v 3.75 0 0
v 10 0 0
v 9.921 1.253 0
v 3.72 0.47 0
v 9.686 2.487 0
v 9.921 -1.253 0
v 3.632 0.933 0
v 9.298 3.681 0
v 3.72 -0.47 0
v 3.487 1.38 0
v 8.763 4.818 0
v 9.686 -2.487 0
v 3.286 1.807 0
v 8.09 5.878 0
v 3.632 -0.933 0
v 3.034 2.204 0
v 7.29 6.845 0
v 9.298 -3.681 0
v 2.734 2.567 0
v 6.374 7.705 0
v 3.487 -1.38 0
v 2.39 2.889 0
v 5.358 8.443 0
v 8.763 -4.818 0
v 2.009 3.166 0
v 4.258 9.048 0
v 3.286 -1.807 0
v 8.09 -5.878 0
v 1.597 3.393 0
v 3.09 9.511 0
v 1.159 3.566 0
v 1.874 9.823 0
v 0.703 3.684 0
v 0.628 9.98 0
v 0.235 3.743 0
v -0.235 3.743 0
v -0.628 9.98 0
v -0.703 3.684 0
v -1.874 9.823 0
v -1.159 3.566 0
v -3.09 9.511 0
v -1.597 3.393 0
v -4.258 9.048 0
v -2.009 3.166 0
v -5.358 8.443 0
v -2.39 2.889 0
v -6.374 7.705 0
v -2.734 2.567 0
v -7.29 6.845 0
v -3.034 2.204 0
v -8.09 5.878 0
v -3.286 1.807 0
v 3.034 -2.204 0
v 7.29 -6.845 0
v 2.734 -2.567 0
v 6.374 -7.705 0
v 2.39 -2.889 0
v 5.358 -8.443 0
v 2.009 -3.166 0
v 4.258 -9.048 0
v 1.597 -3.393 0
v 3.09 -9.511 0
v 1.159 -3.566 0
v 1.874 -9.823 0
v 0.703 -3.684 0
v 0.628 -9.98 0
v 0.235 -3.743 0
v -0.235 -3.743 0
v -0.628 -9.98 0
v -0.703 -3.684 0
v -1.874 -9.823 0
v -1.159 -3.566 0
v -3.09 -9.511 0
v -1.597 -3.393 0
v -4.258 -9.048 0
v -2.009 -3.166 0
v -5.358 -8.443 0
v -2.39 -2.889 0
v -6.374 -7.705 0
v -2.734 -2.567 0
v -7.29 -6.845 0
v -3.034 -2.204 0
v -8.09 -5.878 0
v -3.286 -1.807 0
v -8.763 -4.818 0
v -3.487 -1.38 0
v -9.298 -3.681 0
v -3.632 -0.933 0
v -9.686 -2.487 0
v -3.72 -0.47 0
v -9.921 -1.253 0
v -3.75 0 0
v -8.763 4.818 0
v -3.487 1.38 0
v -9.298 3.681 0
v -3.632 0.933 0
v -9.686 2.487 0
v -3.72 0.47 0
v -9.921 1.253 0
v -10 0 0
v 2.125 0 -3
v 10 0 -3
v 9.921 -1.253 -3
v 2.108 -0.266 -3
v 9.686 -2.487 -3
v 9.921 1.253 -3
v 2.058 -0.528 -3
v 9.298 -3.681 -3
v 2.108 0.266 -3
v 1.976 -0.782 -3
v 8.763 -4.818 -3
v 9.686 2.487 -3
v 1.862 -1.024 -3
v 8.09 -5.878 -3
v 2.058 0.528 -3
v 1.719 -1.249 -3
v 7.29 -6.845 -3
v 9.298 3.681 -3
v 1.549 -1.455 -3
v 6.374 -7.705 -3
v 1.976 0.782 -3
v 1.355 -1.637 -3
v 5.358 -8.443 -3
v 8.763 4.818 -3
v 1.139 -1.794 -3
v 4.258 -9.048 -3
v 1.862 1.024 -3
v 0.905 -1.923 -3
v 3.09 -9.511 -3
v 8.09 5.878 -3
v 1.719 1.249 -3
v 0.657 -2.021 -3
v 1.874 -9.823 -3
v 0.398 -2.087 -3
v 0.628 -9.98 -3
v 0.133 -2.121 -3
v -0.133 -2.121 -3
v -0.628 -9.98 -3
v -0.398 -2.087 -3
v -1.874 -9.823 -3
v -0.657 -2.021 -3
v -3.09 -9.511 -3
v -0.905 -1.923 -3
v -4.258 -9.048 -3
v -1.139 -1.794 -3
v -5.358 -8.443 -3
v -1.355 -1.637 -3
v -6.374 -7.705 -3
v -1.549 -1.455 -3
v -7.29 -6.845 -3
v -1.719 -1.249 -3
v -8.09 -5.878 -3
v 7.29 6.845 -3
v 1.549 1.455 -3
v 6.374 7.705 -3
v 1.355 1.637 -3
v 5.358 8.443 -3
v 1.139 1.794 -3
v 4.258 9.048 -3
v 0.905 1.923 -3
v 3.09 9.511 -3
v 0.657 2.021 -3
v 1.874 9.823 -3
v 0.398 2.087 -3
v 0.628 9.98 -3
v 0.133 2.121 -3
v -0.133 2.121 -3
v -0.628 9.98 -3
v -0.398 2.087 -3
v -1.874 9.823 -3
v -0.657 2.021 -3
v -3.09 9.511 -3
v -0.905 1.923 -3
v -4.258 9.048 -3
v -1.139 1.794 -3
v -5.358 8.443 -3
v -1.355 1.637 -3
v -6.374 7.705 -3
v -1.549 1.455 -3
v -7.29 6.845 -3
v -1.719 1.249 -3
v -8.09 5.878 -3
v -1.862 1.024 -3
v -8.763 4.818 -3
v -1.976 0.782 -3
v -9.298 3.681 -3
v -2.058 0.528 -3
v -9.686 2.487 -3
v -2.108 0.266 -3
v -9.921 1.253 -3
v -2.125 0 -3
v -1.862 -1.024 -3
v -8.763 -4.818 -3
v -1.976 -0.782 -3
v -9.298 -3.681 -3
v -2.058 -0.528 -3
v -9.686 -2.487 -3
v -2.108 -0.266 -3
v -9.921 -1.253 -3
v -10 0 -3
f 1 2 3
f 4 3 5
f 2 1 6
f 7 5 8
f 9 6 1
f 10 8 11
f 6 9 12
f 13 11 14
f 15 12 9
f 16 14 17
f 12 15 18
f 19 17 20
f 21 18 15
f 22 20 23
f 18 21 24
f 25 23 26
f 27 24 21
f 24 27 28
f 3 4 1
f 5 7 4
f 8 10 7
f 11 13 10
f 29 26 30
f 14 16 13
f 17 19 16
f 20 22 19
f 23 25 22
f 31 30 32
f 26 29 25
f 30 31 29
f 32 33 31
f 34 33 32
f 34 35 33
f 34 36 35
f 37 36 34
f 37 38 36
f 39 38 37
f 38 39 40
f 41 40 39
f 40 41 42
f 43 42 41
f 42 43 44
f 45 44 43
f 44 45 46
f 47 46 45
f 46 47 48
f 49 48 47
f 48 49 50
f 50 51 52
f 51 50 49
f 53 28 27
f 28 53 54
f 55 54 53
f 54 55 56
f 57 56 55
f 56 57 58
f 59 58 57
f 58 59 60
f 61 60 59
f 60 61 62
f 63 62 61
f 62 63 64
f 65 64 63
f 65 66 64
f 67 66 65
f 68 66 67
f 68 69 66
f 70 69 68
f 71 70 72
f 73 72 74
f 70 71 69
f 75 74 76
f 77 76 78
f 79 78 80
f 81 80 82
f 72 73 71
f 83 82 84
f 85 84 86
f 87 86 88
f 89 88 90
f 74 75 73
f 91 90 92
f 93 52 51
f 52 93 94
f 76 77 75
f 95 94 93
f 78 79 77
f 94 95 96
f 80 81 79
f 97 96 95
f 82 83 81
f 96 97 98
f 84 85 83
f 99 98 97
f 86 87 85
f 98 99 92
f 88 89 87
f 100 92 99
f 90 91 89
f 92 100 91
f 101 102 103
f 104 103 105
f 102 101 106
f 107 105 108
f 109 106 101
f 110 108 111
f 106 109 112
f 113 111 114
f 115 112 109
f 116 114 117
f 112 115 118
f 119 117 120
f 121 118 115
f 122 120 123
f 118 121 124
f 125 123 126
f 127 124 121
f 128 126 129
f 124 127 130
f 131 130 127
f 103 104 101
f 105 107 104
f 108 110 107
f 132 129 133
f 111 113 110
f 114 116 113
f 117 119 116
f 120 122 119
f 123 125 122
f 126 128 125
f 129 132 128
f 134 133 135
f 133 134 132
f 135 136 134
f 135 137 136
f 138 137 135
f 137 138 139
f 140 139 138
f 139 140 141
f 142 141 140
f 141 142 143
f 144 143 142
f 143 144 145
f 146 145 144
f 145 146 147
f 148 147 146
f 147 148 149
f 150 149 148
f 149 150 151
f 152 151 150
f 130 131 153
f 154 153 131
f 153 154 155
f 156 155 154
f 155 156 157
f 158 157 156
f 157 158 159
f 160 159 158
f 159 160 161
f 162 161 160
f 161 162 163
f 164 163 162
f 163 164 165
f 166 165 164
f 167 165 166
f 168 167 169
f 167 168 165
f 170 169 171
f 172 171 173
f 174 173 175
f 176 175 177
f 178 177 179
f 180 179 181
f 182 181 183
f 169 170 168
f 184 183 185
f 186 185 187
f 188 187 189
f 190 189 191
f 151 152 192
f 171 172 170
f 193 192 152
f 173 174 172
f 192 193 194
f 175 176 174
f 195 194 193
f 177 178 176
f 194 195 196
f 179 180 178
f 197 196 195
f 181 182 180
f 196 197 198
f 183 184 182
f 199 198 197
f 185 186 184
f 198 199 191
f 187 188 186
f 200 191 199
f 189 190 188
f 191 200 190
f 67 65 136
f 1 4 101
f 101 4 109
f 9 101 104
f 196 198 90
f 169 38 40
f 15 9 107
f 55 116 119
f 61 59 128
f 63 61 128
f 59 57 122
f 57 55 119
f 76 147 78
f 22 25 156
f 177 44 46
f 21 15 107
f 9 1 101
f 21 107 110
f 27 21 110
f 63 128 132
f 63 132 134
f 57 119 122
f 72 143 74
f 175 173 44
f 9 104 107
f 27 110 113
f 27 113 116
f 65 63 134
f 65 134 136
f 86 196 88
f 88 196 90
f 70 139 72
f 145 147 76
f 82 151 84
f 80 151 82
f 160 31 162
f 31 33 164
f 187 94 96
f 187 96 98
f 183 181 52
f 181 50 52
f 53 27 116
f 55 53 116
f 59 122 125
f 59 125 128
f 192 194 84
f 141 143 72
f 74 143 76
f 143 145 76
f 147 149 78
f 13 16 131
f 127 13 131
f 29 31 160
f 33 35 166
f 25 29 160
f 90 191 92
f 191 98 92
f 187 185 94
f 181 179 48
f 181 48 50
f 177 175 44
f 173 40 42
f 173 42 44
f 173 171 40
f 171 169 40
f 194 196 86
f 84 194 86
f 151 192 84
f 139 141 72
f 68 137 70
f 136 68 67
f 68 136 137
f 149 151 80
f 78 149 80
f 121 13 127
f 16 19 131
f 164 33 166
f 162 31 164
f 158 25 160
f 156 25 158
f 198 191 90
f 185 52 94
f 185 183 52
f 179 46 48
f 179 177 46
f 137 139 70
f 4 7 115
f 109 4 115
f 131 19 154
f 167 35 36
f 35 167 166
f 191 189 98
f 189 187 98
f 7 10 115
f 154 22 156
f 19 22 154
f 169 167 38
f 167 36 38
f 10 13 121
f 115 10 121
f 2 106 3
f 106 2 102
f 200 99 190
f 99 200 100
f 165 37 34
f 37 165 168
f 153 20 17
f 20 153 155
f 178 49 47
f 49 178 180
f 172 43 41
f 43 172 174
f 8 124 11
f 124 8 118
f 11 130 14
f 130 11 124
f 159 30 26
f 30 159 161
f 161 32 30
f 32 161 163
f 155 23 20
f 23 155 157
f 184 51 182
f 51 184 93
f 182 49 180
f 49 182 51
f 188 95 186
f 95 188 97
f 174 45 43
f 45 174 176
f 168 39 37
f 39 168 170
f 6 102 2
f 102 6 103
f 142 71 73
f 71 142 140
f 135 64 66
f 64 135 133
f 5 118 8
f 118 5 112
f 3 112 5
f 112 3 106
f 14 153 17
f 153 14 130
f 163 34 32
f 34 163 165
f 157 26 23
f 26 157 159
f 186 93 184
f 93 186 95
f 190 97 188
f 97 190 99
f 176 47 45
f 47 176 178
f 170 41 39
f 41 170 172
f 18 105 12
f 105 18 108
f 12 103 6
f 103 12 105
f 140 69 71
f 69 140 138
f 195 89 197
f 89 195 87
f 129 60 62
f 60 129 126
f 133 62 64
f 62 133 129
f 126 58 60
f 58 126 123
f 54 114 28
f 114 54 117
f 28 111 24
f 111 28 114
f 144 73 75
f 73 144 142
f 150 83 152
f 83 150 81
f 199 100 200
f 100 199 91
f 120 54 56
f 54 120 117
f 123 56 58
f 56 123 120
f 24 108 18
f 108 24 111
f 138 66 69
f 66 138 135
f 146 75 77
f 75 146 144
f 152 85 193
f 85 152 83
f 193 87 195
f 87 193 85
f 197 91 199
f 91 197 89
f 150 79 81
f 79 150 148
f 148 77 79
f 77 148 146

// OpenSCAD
$fn = 50;


difference() {
	union() {
		translate(v = [0, 0, -3.0000000000]) {
			cylinder(h = 3, r = 10.0000000000);
		}
		cylinder(h = 0, r = 19.0000000000);
	}
	union() {
		translate(v = [0, 0, 0]) {
			rotate(a = [0, 0, 0]) {
				difference() {
					union() {
						#translate(v = [0, 0, -3.0000000000]) {
							cylinder(h = 3, r = 2.0000000000);
						}
						#translate(v = [0, 0, -3]) {
							cylinder(h = 3, r = 10.0000000000, r1 = 2.1250000000, r2 = 3.7500000000);
						}
						#translate(v = [0, 0, -3.0000000000]) {
							cylinder(h = 3, r = 2.1250000000);
						}
						#translate(v = [0, 0, -3.0000000000]) {
							cylinder(h = 3, r = 2.0000000000);
						}
					}
					union();
				}
			}
		}
	}
}
